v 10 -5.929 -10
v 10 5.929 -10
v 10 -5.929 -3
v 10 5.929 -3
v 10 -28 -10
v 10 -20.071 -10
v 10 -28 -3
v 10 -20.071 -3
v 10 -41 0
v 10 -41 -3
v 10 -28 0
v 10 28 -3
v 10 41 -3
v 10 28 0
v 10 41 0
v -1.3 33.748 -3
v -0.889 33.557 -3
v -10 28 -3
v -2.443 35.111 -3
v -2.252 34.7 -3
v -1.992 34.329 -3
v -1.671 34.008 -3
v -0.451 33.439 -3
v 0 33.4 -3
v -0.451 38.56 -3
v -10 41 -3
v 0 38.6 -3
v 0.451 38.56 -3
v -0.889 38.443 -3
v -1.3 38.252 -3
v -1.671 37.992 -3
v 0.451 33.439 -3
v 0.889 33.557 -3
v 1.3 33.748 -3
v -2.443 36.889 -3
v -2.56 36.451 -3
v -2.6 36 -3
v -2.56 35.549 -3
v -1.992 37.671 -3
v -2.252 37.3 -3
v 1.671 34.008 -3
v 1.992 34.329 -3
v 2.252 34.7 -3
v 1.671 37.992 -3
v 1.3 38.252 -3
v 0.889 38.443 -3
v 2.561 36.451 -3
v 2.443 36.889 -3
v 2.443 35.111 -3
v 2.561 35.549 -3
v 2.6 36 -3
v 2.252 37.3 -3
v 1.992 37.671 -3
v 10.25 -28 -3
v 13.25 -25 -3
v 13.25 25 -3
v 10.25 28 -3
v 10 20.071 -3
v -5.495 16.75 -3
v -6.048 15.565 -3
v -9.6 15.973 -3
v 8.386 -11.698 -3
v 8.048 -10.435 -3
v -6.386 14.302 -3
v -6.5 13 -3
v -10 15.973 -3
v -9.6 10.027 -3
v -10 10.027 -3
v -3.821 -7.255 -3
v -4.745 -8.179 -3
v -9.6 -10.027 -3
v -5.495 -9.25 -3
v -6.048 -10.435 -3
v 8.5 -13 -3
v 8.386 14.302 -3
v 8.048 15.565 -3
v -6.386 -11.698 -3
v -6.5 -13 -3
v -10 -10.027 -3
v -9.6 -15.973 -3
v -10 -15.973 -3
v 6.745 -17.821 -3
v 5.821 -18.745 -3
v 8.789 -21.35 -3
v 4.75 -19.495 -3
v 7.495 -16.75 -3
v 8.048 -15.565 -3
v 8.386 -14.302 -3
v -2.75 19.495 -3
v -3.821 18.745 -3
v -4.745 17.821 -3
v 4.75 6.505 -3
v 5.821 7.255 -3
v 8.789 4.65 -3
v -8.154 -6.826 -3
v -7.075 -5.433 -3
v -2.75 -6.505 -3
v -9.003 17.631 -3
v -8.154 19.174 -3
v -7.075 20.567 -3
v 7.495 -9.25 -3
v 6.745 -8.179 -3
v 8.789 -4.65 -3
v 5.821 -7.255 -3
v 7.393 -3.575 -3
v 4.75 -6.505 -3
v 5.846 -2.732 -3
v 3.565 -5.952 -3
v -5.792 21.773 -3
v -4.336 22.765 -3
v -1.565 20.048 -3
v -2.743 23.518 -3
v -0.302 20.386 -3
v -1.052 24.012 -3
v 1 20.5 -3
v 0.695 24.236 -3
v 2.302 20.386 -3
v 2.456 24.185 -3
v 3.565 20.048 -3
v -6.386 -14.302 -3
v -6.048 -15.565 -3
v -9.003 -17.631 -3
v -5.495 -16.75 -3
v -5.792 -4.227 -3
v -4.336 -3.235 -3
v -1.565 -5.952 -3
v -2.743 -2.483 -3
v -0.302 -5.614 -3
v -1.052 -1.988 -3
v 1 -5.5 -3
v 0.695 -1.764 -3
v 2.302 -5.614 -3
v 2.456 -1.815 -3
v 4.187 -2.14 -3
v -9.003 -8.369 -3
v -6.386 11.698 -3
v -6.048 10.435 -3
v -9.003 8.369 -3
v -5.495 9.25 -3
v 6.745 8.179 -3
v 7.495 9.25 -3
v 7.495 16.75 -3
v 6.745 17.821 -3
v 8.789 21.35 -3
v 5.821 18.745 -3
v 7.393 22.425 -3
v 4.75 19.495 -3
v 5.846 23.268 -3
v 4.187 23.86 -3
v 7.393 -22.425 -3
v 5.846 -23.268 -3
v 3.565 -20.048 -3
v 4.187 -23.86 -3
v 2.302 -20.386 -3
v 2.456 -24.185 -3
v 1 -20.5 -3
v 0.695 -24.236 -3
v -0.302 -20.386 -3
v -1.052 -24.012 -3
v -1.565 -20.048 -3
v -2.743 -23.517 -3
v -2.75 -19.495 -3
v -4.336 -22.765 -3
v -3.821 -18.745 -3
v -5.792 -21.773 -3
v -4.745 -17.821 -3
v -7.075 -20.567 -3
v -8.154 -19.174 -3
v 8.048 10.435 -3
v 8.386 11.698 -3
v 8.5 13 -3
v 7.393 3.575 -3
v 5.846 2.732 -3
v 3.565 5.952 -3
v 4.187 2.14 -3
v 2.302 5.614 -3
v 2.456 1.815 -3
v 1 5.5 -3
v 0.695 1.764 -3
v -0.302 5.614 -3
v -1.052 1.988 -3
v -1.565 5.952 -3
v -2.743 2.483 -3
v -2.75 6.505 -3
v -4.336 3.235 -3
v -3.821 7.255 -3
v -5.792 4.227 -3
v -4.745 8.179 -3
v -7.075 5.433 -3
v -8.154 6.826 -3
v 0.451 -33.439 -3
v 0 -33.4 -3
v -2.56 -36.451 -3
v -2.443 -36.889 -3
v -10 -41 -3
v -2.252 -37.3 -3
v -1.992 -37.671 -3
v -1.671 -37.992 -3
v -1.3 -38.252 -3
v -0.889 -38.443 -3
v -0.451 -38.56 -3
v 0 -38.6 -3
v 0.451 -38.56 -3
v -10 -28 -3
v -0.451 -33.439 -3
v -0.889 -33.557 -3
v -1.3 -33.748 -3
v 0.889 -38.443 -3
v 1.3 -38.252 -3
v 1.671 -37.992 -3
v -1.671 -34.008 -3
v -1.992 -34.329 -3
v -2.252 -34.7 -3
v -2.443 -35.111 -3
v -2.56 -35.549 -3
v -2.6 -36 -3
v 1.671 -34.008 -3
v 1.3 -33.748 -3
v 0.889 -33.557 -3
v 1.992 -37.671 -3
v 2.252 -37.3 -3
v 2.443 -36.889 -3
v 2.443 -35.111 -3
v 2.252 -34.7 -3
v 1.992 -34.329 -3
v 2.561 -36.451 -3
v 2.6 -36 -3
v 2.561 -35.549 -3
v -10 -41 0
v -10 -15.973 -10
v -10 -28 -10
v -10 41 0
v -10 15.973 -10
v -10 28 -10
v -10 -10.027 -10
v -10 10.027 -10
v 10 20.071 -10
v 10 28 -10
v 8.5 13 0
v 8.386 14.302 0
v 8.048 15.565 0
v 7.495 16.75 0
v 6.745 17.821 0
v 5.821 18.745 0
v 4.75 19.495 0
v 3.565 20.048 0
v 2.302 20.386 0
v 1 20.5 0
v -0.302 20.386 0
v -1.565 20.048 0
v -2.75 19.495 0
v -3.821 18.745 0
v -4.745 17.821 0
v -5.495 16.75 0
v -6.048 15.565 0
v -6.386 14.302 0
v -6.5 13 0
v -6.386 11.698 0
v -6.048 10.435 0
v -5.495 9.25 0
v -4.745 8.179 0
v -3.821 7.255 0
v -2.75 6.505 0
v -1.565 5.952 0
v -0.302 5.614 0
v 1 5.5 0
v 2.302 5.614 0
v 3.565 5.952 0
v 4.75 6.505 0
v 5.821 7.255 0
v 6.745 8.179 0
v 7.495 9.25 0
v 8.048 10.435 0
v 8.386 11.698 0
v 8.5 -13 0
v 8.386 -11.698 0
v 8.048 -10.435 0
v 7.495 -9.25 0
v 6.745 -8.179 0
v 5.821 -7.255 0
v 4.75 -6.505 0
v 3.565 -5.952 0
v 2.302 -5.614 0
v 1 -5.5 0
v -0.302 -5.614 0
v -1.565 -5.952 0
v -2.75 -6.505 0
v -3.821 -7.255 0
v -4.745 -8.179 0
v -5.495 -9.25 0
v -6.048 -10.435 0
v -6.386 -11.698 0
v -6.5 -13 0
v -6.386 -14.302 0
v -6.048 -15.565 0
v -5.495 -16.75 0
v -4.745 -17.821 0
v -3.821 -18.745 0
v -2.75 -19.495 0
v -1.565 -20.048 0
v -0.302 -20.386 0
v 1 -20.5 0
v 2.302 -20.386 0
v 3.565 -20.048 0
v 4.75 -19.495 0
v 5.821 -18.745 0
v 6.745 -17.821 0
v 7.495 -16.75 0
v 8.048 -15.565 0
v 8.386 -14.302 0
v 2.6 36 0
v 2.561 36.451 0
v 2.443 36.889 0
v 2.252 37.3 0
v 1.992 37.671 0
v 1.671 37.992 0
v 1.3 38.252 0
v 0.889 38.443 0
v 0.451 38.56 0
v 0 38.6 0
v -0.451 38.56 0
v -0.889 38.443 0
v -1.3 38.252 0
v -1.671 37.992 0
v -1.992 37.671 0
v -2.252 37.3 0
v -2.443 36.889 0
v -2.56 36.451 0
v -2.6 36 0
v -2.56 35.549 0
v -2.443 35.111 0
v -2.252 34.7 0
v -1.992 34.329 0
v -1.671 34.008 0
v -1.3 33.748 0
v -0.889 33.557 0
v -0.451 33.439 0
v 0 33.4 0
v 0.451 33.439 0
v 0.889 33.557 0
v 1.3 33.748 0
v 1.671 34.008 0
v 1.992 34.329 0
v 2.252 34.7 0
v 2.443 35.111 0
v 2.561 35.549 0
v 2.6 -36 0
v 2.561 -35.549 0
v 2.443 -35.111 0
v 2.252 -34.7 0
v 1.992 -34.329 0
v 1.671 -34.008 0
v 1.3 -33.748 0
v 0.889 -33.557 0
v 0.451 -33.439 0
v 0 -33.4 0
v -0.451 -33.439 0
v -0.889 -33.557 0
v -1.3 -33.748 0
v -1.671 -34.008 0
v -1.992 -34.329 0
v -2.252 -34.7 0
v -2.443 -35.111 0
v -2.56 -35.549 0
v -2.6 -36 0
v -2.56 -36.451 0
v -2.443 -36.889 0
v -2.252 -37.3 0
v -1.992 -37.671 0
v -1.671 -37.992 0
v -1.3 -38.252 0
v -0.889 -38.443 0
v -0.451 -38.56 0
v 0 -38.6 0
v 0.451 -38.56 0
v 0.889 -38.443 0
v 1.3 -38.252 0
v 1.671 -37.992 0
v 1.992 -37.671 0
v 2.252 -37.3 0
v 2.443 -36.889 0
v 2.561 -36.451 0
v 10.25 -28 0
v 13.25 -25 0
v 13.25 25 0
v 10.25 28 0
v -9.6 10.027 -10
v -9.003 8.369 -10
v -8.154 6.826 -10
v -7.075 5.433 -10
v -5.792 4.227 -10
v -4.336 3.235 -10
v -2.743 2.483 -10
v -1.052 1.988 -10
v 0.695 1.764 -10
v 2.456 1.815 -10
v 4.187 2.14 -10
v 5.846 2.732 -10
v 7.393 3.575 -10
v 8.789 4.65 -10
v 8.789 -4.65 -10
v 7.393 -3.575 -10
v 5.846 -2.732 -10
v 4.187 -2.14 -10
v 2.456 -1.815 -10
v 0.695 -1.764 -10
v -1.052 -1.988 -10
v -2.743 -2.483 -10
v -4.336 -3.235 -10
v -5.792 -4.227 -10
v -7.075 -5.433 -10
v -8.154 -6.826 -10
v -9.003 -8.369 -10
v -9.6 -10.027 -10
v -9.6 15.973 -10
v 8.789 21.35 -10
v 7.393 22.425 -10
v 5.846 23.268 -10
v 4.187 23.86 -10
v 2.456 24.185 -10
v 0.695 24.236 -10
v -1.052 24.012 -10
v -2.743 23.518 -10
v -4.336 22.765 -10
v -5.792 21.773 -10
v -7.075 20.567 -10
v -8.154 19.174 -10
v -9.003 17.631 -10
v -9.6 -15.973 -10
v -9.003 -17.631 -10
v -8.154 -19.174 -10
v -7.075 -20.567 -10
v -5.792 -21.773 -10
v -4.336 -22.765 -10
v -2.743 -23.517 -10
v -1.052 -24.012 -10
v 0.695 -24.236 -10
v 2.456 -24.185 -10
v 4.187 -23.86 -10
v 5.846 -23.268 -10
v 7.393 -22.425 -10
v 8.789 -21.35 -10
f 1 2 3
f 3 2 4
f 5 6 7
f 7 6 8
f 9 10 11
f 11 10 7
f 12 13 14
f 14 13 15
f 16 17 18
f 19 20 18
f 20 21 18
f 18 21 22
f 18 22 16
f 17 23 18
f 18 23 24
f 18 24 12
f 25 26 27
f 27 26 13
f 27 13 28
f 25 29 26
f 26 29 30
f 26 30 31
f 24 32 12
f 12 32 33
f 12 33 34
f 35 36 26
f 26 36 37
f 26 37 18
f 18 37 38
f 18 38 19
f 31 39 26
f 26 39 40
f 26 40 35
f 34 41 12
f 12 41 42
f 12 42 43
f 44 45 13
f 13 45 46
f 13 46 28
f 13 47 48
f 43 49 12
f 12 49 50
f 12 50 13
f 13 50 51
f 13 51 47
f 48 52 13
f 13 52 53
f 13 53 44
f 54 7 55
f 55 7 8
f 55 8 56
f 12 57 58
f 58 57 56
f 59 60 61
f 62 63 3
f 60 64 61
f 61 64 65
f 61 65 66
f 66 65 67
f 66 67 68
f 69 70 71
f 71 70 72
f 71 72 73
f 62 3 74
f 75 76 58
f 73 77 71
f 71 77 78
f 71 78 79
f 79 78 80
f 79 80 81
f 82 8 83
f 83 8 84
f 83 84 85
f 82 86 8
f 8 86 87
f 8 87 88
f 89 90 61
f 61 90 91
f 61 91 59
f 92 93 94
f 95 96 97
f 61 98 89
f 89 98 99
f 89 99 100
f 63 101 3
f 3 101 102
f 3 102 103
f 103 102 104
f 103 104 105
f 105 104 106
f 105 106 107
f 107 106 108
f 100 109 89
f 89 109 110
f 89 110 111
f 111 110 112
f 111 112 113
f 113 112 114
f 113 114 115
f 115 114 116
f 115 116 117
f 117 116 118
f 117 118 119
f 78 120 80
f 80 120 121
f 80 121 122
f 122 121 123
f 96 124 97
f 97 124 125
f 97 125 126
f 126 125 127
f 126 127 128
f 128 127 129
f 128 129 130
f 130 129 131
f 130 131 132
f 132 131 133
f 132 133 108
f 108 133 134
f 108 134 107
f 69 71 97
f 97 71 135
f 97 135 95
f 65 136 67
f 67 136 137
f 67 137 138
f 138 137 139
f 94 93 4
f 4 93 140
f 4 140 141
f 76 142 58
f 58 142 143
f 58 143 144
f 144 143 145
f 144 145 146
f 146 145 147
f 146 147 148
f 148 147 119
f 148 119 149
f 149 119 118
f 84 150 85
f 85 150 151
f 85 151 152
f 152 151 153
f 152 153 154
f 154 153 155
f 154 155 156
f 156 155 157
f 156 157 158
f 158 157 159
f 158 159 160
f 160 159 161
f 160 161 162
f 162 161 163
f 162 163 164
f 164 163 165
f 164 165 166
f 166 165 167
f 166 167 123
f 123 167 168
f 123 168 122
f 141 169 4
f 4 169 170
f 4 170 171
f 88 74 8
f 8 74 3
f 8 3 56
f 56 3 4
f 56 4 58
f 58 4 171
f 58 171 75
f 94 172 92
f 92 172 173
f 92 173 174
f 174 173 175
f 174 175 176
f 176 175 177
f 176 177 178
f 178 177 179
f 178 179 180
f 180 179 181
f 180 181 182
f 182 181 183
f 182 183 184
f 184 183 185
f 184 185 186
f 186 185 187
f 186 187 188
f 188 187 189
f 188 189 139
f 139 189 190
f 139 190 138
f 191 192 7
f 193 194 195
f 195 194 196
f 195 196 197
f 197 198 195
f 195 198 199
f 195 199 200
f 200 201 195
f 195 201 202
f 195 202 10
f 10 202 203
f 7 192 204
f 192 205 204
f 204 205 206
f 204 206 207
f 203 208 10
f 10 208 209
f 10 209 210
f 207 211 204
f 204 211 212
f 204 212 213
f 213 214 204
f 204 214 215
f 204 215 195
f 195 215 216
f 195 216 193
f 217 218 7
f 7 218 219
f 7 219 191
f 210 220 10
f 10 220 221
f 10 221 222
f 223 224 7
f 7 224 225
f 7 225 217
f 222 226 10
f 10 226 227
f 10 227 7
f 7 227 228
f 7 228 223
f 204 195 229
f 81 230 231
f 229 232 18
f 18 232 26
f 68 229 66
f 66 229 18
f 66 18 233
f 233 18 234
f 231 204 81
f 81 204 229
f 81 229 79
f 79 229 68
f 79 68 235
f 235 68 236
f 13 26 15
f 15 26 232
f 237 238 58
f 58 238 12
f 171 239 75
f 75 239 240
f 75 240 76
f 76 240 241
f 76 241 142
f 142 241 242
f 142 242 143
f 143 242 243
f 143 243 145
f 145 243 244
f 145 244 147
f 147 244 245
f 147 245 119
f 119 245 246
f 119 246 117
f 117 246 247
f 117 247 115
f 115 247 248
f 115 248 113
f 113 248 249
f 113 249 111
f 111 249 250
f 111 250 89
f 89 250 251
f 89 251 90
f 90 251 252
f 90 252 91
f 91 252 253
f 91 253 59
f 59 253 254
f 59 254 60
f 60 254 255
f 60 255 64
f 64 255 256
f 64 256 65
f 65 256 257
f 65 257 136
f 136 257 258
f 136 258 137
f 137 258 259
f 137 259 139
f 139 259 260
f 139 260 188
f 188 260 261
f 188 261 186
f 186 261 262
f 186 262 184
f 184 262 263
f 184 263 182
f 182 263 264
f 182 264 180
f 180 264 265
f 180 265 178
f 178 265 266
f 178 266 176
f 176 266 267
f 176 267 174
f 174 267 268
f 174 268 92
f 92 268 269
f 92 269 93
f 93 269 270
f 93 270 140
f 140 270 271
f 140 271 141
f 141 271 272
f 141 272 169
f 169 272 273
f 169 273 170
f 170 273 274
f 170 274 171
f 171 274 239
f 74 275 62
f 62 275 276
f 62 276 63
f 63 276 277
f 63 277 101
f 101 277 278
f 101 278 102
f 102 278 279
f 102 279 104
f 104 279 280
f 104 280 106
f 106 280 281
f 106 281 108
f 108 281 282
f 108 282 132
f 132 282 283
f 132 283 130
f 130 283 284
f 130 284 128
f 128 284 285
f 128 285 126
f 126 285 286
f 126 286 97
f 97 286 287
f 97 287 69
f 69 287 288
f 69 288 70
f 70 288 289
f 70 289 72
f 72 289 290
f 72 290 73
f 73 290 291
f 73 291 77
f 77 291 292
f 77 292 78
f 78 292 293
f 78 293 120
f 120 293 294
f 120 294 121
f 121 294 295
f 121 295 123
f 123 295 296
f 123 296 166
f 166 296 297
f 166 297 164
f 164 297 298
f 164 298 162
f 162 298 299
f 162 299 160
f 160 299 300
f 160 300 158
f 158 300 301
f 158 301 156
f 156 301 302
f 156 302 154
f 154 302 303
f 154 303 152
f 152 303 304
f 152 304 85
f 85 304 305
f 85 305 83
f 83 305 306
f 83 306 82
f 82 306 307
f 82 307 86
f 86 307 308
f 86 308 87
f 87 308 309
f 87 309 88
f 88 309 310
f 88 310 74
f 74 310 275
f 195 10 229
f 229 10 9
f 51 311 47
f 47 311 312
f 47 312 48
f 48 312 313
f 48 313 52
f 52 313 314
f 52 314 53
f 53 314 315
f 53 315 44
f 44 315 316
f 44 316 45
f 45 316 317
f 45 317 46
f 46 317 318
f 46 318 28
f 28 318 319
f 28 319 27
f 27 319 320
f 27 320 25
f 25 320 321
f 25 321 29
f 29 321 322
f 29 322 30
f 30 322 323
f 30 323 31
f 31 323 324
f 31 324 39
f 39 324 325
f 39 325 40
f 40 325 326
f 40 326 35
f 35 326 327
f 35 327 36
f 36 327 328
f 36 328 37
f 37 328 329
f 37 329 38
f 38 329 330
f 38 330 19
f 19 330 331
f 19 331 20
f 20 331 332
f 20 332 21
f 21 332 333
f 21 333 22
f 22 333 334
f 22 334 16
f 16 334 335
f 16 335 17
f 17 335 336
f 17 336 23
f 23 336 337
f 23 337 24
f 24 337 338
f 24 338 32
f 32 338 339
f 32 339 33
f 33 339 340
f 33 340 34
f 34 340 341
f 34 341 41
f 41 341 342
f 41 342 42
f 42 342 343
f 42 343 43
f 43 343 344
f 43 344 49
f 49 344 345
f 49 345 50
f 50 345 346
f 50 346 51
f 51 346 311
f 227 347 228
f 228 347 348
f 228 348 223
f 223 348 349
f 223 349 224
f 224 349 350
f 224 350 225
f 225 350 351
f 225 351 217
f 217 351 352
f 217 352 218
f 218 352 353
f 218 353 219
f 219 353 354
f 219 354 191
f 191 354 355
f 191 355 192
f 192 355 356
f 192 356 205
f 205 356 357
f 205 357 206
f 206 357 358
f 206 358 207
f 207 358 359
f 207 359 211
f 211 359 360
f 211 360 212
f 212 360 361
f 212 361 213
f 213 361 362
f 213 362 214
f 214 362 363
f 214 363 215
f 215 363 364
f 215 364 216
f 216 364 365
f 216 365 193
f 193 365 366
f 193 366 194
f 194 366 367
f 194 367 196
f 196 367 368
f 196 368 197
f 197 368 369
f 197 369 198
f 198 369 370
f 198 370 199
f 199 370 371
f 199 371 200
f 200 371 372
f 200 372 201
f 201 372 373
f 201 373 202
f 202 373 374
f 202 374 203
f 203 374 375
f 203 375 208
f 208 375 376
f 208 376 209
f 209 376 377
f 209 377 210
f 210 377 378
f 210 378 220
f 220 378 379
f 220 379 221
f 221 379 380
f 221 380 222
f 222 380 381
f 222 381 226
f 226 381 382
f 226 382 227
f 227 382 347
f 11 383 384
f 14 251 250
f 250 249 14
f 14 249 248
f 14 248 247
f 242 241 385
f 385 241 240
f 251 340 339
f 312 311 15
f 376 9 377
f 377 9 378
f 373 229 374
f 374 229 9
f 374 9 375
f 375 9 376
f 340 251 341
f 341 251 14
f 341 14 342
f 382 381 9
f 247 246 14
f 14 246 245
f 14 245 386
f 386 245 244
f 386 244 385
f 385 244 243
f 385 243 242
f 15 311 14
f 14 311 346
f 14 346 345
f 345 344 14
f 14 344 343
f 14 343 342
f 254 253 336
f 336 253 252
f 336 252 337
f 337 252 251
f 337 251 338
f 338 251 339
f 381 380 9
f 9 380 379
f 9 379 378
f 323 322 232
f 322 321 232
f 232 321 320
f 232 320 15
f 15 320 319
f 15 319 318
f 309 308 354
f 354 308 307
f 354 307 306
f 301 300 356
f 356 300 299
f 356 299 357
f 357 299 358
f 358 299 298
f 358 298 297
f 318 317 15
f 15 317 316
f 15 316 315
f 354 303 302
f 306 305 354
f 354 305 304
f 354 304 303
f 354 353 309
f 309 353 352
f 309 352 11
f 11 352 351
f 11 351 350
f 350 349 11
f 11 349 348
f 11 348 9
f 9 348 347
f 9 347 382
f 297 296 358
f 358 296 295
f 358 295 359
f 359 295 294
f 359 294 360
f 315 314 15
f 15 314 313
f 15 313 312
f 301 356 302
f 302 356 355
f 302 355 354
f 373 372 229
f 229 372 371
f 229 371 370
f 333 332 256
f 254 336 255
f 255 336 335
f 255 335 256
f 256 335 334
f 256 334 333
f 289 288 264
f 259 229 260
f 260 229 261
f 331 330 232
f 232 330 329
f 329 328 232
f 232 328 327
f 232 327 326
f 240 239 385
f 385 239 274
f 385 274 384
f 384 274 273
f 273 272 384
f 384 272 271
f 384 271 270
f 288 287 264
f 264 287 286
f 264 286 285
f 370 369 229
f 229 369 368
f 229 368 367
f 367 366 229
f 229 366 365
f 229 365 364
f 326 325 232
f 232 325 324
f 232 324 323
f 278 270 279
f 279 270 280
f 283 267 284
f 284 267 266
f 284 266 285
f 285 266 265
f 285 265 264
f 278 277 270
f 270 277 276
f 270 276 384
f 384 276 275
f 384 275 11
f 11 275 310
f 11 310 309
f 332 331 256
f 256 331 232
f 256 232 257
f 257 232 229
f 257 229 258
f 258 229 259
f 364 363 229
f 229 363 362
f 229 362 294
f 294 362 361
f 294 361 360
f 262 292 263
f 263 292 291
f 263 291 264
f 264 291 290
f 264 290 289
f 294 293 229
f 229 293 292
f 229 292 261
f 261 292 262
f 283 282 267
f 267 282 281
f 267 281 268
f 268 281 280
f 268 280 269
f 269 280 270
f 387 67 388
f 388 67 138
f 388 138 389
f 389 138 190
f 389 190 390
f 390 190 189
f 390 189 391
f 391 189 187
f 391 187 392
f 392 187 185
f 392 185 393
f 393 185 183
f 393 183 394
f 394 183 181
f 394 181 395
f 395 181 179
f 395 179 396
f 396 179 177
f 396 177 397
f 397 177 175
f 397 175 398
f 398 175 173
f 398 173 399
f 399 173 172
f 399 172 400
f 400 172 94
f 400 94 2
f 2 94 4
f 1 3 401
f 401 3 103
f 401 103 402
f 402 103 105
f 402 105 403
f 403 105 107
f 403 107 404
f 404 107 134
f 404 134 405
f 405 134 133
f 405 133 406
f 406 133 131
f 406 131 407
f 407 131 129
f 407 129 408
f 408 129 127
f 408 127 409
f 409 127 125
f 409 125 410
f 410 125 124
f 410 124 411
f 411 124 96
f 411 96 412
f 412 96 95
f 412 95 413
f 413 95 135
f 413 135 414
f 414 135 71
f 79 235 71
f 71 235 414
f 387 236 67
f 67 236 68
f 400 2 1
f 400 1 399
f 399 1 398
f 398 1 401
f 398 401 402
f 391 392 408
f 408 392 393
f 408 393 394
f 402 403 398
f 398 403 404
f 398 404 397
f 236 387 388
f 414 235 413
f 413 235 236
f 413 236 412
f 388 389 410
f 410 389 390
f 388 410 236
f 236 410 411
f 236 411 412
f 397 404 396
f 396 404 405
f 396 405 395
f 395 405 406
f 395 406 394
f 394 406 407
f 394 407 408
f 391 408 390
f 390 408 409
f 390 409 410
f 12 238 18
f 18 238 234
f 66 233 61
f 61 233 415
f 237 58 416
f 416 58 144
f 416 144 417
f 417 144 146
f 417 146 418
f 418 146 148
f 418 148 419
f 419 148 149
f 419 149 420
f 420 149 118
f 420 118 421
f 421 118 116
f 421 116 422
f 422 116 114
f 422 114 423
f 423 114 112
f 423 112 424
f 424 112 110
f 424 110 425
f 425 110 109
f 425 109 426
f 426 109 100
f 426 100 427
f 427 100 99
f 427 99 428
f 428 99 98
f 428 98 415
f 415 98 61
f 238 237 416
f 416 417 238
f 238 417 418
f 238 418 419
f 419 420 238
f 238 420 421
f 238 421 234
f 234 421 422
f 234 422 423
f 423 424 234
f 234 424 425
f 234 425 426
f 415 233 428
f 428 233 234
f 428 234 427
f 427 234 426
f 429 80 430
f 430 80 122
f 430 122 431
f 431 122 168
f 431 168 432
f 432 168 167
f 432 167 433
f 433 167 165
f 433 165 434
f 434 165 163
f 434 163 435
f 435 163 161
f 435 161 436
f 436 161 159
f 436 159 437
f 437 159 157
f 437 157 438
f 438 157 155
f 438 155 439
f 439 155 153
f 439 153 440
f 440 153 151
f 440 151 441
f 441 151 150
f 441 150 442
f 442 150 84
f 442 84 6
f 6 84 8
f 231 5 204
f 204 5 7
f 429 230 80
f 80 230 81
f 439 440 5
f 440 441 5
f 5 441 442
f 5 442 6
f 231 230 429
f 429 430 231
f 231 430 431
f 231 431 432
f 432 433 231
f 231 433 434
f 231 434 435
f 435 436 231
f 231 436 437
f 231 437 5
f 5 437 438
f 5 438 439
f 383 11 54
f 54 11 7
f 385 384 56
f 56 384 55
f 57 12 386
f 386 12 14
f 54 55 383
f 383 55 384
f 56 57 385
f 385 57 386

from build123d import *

# Parameters (mm, degrees)
SKETCH10_R           = 7.5
SKETCH10_W           = 20
SKETCH10_H           = 10
SKETCH10_R_2         = 2.6
BOSS_EXTRUDE7_DEPTH  = 3
BOSS_EXTRUDE10_DEPTH = 10
SKETCH12_W           = 3.25
SKETCH12_H           = 56
BOSS_EXTRUDE11_DEPTH = 3
CHAMFER2_SIZE        = 3
CHAMFER3_SIZE        = 3


with BuildPart() as part:
    # Sketch10 → Boss-Extrude7 (new body)
    # profile 1 of 3: a face of its own
    with BuildSketch(Plane.XY):
        Polygon((10, 19.32455532), (10, 31), (-10, 31), (-10, 15.101198027), (-10, -10.060612309), (-10, -31), (10, -31), (10, -17.409211947), align=None)
        with Locations((1, -13)):
            Circle(SKETCH10_R, mode=Mode.SUBTRACT)
        with Locations((1, 13)):
            Circle(SKETCH10_R, mode=Mode.SUBTRACT)
    # profile 2 of 3: a face of its own
    with BuildSketch(Plane.XY):
        with Locations((0, 36)):
            Rectangle(SKETCH10_W, SKETCH10_H)
        with Locations((0, 36)):
            Circle(SKETCH10_R_2, mode=Mode.SUBTRACT)
    # profile 3 of 3: a face of its own
    with BuildSketch(Plane.XY):
        with Locations((0, -36)):
            Rectangle(SKETCH10_W, SKETCH10_H)
        with Locations((0, -36)):
            Circle(SKETCH10_R_2, mode=Mode.SUBTRACT)
    extrude(amount=-BOSS_EXTRUDE7_DEPTH)

    # Sketch9 → Boss-Extrude10 (add)
    with BuildSketch(Plane.XY):
        with BuildLine():
            ThreePointArc((-9.6, 10.026786251), (-1.052303624, 1.988101979), (10, 5.928932188))
            Line((10, 5.928932188), (10, -5.928932188))
            ThreePointArc((10, -5.928932188), (-1.052303624, -1.988101979), (-9.6, -10.026786251))
            Line((-9.6, -10.026786251), (-10, -10.026786251))
            Line((-10, -10.026786251), (-10, 10.026786251))
            Line((-10, 10.026786251), (-9.6, 10.026786251))
        make_face()
        with BuildLine():
            Line((10, 20.071067812), (10, 28))
            Line((10, 28), (-10, 28))
            Line((-10, 28), (-10, 15.973213749))
            Line((-10, 15.973213749), (-9.6, 15.973213749))
            ThreePointArc((-9.6, 15.973213749), (-1.052303624, 24.011898021), (10, 20.071067812))
        make_face()
        with BuildLine():
            Line((-10, -28), (10, -28))
            Line((10, -28), (10, -20.071067812))
            ThreePointArc((10, -20.071067812), (-1.052303624, -24.011898021), (-9.6, -15.973213749))
            Line((-9.6, -15.973213749), (-10, -15.973213749))
            Line((-10, -15.973213749), (-10, -28))
        make_face()
    extrude(amount=-BOSS_EXTRUDE10_DEPTH)

    # Sketch12 → Boss-Extrude11 (add)
    with BuildSketch(Plane(origin=(0, 0, -3), x_dir=(-1, 0, 0), z_dir=(0, 0, -1))):
        with Locations((-11.625, 0)):
            Rectangle(SKETCH12_W, SKETCH12_H)
    extrude(amount=-BOSS_EXTRUDE11_DEPTH)

    # Chamfer2
    chamfer2_edges = [part.edges().sort_by_distance(p)[0] for p in [
        (13.25, -28, -1.5),
    ]]
    chamfer(chamfer2_edges, length=CHAMFER2_SIZE)

    # Chamfer3
    chamfer3_edges = [part.edges().sort_by_distance(p)[0] for p in [
        (13.25, 28, -1.5),
    ]]
    chamfer(chamfer3_edges, length=CHAMFER3_SIZE)


solid = part.part
